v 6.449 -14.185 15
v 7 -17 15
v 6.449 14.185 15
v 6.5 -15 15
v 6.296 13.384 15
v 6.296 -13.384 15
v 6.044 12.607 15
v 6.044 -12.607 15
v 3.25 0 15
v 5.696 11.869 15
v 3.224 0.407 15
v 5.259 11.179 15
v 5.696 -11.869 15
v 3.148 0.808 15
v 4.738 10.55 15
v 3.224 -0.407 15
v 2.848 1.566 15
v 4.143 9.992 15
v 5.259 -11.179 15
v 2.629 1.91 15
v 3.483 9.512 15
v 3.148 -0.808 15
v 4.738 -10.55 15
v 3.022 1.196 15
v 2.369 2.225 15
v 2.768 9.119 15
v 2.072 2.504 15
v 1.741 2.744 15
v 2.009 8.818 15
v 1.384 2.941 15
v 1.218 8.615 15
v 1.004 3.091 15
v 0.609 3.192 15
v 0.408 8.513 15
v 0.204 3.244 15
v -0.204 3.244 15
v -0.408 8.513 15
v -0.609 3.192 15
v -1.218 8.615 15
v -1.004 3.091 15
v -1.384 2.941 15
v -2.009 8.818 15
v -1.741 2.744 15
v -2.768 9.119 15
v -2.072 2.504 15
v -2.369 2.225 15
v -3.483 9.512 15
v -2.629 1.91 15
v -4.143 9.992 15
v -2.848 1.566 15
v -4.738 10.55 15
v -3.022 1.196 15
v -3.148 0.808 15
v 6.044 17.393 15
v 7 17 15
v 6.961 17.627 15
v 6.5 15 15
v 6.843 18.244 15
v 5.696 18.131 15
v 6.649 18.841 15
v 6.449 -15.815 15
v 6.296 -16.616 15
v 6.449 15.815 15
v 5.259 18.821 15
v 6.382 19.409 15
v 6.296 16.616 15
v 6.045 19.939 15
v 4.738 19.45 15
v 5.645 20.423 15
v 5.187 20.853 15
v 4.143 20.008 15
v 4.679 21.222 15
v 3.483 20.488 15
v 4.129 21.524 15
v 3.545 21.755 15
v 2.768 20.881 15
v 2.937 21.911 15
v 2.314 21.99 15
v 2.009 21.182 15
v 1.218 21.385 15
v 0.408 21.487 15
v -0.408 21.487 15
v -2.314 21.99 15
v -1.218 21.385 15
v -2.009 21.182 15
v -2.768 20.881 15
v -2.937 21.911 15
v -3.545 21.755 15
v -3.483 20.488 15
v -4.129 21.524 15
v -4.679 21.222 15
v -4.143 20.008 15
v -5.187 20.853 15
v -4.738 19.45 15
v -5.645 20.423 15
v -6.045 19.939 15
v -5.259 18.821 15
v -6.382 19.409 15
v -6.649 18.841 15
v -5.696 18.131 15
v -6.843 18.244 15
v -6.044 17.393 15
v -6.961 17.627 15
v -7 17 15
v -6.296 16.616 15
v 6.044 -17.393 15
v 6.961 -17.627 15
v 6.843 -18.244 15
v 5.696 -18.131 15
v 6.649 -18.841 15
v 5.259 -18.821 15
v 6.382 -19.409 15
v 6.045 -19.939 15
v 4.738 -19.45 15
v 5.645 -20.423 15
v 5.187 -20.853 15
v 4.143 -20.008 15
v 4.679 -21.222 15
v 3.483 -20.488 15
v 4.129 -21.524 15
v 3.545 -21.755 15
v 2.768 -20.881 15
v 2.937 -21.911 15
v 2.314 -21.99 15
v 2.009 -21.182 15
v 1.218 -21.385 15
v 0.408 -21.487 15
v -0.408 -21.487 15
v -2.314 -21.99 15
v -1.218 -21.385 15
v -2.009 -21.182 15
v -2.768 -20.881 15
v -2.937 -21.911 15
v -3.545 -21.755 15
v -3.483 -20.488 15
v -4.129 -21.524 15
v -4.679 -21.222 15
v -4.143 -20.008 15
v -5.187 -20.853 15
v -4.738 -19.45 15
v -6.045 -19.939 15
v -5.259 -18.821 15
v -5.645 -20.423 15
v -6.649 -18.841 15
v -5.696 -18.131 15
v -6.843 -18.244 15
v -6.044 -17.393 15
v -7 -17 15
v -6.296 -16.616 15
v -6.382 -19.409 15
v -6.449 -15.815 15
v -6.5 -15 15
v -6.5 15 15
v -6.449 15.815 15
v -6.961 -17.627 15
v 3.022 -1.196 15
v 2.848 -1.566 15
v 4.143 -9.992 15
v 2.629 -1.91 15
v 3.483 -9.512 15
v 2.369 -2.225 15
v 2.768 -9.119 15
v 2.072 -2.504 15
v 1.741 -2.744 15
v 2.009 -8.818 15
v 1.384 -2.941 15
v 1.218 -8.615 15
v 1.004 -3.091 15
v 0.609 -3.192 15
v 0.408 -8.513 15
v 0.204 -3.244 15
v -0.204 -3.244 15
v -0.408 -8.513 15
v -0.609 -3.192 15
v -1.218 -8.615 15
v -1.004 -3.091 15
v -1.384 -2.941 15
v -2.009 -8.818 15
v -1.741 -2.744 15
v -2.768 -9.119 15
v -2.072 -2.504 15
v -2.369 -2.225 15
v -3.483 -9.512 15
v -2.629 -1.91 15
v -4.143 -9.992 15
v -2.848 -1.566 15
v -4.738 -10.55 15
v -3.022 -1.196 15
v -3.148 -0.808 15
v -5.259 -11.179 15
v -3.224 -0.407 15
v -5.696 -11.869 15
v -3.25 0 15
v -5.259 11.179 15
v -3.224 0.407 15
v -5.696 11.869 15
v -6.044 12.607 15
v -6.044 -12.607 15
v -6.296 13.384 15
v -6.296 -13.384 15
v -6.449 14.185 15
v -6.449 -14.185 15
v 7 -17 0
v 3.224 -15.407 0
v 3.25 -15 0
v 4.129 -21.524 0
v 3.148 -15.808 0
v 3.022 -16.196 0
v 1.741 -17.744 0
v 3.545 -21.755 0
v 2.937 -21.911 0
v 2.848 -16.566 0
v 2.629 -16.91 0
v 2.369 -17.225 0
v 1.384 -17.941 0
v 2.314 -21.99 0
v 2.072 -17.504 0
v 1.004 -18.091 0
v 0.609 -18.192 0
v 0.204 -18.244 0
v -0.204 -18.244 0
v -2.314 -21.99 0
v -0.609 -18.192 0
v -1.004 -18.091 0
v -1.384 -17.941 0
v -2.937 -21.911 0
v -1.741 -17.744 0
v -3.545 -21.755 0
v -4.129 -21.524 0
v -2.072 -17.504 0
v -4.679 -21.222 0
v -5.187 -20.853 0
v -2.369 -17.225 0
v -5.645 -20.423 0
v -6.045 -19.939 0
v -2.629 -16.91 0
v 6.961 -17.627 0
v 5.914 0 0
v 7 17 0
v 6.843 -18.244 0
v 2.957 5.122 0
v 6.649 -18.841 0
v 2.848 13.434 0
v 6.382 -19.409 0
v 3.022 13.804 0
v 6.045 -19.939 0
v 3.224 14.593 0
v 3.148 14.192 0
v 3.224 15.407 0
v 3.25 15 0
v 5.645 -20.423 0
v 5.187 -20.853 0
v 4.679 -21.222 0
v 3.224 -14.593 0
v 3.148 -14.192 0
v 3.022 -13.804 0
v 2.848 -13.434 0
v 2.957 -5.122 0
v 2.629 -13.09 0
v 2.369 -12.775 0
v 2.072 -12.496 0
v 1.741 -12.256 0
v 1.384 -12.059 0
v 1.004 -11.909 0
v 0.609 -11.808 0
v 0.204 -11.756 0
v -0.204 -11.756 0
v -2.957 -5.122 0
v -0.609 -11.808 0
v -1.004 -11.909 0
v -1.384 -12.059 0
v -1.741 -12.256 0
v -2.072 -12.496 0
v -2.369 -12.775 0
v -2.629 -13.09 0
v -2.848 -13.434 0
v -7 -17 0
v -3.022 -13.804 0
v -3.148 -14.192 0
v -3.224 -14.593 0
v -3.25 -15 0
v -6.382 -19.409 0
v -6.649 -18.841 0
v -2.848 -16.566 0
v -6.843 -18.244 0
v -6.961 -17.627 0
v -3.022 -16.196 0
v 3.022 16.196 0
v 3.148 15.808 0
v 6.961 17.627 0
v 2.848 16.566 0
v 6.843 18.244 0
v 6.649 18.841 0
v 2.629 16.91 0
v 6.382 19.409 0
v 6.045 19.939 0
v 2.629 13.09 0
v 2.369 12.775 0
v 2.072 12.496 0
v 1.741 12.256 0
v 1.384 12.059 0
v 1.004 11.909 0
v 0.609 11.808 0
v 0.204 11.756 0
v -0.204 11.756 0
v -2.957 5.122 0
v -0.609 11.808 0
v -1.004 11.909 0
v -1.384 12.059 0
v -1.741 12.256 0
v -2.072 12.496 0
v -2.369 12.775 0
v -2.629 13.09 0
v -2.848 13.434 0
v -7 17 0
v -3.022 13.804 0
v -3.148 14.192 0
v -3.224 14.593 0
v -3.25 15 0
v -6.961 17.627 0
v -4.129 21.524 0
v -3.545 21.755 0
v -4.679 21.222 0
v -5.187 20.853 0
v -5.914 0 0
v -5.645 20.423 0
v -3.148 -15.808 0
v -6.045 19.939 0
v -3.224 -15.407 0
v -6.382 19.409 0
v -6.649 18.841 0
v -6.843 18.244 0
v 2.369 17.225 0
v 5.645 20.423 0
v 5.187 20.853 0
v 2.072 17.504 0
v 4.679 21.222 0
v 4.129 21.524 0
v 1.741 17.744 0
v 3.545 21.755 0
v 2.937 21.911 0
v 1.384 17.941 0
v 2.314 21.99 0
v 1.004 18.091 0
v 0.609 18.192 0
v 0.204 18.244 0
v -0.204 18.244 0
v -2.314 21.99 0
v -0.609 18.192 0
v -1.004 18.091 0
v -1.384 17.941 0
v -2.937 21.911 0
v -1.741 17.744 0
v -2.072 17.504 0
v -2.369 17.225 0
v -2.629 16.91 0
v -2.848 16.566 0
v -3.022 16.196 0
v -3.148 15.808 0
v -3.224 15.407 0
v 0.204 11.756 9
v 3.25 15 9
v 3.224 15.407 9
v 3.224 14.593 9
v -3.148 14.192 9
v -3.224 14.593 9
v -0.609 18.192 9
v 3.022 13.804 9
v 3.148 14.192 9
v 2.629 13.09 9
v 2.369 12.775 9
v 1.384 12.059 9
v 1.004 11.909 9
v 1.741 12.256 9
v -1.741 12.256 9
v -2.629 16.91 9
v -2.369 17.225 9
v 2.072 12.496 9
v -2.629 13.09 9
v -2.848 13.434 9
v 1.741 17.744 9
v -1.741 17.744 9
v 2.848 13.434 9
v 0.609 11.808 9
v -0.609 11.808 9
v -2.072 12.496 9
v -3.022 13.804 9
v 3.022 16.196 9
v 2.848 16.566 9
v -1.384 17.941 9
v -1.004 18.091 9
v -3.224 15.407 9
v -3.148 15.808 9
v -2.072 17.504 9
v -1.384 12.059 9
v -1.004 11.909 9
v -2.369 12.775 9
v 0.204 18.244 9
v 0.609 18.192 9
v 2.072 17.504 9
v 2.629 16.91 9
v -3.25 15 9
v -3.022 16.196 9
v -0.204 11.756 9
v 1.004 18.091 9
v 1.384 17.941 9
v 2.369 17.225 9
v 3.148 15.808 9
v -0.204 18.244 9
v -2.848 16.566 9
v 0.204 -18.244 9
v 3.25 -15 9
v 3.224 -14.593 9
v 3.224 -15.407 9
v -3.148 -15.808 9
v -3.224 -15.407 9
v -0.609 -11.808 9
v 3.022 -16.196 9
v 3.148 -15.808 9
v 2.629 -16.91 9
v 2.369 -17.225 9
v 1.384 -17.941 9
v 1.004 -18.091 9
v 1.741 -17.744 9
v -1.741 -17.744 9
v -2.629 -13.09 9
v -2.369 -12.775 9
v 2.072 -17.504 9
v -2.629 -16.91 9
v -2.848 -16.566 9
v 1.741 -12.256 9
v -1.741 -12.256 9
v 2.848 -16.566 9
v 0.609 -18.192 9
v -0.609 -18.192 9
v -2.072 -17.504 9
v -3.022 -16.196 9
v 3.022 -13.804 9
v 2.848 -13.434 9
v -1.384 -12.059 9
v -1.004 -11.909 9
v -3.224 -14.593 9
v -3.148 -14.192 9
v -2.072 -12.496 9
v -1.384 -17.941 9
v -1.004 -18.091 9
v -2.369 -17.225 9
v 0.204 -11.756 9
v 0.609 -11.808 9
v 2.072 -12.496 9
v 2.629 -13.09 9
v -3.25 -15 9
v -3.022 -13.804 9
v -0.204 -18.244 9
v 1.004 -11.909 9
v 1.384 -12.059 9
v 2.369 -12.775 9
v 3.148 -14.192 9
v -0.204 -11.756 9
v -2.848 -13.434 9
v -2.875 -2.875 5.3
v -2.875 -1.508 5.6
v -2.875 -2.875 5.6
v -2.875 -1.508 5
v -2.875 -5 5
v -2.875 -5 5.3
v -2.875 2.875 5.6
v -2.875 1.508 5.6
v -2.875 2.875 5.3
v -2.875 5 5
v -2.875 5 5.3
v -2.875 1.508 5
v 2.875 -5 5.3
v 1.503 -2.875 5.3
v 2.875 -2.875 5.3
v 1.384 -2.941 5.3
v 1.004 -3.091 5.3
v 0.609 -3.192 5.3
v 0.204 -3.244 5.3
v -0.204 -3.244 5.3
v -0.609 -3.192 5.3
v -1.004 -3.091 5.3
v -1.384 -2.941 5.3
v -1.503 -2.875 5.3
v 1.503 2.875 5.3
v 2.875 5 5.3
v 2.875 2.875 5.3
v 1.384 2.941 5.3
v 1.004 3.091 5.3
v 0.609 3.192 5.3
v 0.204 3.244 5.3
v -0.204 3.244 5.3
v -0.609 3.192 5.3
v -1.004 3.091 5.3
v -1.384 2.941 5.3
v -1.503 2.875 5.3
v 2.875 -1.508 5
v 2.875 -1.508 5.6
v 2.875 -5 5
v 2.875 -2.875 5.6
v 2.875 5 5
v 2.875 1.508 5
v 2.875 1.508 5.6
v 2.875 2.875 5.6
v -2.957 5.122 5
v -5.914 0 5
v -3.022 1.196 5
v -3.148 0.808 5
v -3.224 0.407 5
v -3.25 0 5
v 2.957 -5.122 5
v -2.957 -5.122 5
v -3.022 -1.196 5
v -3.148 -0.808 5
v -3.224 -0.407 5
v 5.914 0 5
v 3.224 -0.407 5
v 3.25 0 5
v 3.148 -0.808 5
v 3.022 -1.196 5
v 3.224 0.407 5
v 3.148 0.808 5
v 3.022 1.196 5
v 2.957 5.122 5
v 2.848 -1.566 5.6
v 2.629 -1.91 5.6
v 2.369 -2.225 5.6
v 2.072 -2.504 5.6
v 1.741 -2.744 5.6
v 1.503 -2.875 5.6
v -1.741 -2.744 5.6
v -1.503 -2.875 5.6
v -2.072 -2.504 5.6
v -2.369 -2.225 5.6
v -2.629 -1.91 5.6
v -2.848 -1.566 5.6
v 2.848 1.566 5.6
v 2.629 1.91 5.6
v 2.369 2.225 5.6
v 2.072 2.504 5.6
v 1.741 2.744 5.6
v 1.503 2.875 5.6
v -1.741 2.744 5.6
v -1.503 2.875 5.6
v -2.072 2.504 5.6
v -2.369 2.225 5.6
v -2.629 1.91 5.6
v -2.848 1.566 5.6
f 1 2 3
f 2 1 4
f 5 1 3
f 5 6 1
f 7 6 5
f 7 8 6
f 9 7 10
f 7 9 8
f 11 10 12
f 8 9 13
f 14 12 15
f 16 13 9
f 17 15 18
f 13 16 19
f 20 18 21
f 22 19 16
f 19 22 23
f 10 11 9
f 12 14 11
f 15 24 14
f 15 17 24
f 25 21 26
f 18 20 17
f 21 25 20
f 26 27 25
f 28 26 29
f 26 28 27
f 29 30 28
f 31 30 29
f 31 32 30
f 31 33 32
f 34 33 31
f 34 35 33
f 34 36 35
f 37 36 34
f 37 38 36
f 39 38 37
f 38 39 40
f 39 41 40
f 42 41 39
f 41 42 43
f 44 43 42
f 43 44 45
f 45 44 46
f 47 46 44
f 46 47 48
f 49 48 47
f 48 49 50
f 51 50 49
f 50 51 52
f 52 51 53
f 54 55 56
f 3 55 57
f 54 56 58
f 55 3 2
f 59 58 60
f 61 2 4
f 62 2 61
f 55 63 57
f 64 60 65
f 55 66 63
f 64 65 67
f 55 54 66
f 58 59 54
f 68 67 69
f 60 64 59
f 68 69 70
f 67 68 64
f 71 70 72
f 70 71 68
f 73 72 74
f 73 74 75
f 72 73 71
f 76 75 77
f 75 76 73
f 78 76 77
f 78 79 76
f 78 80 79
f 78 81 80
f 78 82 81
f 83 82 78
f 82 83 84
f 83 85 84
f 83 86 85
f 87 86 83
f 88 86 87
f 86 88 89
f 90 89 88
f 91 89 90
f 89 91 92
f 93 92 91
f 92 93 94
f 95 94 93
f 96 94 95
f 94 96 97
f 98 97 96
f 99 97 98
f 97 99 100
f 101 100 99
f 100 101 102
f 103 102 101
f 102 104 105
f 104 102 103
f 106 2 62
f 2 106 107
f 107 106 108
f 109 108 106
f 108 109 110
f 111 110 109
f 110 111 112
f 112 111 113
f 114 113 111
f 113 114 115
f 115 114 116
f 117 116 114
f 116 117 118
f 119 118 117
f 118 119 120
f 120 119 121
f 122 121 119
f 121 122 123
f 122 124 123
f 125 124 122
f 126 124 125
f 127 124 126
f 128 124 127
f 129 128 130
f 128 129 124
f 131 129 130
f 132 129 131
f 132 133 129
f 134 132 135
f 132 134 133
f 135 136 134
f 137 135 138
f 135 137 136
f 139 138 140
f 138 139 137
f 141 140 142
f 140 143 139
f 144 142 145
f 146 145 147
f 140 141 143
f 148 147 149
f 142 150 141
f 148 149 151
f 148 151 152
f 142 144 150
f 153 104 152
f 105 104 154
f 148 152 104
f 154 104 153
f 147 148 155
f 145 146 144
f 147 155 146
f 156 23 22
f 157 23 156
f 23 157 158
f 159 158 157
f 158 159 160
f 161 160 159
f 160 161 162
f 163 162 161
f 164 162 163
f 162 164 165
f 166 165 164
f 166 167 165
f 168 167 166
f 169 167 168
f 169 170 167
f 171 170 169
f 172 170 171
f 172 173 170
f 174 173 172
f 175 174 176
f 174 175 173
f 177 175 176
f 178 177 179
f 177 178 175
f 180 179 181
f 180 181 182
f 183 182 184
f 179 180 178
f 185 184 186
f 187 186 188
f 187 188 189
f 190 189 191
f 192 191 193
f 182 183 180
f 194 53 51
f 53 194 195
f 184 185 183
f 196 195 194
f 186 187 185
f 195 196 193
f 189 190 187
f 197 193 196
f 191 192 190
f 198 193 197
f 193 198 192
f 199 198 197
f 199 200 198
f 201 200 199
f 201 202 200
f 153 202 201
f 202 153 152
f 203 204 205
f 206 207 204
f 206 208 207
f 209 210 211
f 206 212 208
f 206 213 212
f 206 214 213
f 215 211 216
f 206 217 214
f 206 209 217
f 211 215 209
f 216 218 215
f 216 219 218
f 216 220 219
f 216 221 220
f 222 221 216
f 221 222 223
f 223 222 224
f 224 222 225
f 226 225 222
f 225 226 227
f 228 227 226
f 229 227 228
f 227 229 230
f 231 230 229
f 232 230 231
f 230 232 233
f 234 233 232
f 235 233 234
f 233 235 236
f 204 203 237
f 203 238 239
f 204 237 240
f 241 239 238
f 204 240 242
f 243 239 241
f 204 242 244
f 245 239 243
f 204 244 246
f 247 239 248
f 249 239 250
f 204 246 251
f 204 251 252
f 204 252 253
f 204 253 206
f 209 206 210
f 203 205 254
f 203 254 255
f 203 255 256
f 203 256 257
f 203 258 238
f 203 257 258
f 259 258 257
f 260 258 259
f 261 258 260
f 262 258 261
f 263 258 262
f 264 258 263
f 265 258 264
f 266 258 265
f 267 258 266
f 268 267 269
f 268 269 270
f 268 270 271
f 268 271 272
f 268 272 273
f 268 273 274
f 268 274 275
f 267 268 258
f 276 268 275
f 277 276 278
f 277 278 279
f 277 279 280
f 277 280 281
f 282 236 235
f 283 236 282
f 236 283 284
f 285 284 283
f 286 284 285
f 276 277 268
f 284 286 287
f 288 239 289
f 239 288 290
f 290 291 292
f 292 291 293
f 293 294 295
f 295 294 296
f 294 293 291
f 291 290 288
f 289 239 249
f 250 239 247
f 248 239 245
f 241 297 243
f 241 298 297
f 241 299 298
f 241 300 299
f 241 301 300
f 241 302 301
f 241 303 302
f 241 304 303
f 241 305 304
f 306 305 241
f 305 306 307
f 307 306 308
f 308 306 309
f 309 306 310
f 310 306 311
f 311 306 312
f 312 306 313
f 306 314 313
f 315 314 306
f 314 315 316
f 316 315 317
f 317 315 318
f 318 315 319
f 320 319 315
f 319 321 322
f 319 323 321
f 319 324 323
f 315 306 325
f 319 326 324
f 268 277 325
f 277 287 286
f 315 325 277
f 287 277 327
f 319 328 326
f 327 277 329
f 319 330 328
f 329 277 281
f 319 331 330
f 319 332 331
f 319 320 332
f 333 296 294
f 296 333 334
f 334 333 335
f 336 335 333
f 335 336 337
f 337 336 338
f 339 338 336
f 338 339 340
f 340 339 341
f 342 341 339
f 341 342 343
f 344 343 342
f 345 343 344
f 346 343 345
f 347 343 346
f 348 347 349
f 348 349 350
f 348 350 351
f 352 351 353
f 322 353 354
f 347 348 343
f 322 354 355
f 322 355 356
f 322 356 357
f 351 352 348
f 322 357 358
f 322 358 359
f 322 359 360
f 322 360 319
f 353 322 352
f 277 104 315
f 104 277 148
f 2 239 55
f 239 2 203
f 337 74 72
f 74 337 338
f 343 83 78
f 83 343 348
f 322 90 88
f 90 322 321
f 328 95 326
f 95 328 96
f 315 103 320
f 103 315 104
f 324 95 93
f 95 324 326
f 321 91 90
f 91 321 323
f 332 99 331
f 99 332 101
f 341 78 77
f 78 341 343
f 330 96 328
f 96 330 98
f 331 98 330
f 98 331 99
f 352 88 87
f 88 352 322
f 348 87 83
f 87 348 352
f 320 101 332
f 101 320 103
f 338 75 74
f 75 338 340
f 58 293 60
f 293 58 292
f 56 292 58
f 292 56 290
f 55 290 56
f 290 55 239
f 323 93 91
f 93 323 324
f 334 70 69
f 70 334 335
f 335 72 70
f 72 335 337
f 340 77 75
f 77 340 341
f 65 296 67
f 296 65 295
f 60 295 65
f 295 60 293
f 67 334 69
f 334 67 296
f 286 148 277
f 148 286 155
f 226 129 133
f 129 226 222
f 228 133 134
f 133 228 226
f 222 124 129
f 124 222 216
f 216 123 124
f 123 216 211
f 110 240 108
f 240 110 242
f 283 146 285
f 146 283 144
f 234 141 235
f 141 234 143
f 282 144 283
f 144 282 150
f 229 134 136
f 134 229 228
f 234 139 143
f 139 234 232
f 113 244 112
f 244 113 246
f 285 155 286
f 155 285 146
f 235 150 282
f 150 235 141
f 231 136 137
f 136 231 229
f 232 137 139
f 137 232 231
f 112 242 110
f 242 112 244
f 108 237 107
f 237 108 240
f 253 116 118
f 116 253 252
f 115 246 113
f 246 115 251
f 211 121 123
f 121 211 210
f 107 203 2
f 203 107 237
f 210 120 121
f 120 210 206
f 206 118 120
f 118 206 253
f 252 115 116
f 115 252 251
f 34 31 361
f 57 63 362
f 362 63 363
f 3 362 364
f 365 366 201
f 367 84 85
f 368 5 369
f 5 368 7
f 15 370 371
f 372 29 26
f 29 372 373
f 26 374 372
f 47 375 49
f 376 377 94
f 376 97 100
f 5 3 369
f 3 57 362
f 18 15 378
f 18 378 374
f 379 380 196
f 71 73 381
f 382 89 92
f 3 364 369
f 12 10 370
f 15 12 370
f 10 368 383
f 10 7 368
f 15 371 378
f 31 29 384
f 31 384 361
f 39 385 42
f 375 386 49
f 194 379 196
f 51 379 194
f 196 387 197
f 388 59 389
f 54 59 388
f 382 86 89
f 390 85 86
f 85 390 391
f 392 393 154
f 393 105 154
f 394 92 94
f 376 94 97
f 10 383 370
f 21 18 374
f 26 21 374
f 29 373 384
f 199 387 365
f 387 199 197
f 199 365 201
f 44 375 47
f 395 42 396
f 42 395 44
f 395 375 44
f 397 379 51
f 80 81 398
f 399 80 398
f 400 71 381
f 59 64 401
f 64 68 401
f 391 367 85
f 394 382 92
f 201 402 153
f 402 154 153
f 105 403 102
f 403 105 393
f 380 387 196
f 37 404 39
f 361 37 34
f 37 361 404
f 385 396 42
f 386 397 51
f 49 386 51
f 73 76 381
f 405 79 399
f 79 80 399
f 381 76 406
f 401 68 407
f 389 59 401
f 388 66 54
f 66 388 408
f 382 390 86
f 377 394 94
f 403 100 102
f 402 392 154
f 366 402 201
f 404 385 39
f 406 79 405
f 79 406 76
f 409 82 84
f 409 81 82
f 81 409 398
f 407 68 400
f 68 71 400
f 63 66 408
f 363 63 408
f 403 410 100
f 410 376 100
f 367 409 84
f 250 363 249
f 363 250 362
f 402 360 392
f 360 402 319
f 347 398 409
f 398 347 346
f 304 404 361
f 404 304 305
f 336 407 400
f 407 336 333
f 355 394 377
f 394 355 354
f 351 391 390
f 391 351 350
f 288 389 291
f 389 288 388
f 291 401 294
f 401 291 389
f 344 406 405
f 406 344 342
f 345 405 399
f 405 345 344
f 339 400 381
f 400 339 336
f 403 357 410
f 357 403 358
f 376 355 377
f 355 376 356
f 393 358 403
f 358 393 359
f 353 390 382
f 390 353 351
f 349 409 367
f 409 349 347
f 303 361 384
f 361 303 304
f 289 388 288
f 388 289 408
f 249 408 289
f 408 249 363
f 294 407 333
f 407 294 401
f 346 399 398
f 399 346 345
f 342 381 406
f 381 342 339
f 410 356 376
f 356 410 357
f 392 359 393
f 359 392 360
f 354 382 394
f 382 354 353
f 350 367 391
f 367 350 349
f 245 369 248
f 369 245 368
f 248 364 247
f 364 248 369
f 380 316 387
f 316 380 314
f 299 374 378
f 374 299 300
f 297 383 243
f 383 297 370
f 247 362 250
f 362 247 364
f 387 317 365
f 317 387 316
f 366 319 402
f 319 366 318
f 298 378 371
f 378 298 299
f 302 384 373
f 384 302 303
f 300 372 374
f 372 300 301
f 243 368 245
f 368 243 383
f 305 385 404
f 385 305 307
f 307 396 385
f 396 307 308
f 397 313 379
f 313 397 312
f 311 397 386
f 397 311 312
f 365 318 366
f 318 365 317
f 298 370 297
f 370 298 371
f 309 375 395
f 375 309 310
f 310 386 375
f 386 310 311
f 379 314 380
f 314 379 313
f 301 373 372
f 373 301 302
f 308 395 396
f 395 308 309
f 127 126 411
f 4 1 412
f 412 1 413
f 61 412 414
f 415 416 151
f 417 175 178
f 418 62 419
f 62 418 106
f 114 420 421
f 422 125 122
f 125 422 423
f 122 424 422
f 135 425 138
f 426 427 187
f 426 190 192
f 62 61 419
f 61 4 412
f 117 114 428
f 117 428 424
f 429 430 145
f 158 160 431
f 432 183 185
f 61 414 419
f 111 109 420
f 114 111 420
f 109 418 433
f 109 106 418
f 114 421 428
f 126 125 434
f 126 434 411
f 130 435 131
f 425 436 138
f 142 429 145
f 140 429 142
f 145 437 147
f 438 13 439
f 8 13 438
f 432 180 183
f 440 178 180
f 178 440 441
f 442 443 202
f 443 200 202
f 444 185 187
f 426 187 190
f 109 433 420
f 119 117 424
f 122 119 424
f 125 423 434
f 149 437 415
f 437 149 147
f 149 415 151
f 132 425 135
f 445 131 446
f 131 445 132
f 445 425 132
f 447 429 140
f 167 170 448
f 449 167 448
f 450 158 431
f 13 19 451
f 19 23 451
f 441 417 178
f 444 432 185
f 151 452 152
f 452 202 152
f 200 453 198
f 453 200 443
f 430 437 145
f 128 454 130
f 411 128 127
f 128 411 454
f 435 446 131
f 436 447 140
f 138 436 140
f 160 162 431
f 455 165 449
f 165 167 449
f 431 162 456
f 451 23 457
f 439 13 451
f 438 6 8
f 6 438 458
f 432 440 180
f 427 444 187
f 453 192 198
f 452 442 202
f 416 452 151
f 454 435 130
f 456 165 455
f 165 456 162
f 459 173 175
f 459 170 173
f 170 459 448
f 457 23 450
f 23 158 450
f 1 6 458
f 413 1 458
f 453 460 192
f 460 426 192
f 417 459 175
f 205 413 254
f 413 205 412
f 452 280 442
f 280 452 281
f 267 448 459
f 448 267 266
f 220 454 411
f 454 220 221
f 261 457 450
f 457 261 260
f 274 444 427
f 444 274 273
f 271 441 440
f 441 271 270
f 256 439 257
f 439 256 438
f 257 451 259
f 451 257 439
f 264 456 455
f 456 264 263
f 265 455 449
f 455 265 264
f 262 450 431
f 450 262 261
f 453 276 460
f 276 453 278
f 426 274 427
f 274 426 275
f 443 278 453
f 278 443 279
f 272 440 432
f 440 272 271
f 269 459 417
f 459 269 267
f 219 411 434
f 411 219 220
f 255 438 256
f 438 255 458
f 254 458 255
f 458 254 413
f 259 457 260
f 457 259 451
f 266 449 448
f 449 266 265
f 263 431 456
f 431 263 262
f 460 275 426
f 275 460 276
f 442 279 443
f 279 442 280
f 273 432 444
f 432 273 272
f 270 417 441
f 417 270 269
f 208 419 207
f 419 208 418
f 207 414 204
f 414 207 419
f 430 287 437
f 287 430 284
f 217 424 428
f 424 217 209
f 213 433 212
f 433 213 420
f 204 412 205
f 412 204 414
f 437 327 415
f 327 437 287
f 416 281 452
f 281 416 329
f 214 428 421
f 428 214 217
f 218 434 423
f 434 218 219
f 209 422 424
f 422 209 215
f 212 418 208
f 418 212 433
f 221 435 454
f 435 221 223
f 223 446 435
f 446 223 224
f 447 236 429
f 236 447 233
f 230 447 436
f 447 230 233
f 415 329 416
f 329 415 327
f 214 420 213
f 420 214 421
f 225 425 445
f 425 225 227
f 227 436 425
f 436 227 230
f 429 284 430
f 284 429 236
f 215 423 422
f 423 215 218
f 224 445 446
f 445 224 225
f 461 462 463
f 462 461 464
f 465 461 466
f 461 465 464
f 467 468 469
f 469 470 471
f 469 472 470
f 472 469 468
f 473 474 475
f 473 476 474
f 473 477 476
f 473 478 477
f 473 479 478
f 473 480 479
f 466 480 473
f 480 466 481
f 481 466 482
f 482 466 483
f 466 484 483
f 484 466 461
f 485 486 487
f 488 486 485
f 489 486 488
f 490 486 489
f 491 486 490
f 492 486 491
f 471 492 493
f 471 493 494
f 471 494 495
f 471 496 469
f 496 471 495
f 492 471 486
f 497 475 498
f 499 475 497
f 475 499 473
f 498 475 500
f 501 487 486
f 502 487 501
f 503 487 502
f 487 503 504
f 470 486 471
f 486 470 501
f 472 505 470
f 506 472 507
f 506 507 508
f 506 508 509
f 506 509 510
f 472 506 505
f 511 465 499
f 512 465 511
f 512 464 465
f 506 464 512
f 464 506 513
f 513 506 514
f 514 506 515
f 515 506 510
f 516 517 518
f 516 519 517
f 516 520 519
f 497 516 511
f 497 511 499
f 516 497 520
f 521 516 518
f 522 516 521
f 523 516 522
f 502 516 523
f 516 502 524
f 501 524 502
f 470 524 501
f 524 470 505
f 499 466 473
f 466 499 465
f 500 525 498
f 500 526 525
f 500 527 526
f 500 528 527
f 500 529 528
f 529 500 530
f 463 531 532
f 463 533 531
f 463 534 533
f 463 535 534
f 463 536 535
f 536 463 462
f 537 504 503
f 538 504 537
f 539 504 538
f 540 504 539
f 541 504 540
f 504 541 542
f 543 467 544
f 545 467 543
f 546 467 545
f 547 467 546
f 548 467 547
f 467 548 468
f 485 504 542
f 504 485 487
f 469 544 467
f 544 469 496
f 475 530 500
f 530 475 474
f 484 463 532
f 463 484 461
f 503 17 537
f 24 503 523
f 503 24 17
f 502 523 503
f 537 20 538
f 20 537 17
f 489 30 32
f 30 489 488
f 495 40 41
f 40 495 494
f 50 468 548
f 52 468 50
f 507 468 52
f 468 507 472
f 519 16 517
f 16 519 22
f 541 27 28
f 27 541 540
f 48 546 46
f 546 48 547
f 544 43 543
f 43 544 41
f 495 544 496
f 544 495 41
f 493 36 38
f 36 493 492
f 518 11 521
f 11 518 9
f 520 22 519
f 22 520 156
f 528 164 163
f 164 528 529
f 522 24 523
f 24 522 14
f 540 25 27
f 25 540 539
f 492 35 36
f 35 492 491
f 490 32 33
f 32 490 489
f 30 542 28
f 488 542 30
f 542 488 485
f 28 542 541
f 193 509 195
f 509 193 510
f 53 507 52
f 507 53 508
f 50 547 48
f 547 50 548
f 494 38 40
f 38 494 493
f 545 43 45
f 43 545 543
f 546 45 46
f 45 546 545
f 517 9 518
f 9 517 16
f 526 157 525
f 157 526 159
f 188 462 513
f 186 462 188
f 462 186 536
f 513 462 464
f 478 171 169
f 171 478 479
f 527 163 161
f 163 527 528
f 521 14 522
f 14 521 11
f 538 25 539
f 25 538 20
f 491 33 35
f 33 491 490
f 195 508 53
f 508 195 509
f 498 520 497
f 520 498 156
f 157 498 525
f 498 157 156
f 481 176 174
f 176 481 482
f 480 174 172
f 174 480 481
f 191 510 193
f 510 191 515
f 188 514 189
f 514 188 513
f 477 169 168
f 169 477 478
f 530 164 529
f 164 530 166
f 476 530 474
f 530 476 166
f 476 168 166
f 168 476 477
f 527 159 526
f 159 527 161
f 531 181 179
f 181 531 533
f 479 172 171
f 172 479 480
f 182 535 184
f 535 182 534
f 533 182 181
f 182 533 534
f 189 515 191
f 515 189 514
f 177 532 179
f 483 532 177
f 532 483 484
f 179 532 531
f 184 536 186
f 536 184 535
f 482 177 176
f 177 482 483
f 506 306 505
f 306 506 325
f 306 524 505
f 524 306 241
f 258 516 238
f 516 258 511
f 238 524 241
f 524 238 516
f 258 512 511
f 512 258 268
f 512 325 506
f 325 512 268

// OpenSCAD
$fn = 50;


difference() {
	union() {
		cylinder(h = 15, r = 7.0000000000);
		translate(v = [0.0000000000, 7.5000000000, 0]) {
			hull() {
				translate(v = [-2.0000000000, 9.5000000000, 0]) {
					cylinder(h = 15, r = 5);
				}
				translate(v = [2.0000000000, 9.5000000000, 0]) {
					cylinder(h = 15, r = 5);
				}
				translate(v = [-2.0000000000, -9.5000000000, 0]) {
					cylinder(h = 15, r = 5);
				}
				translate(v = [2.0000000000, -9.5000000000, 0]) {
					cylinder(h = 15, r = 5);
				}
			}
		}
		translate(v = [0.0000000000, 7.5000000000, 0]) {
			hull() {
				translate(v = [-2.0000000000, 9.5000000000, 0]) {
					cylinder(h = 15, r = 5);
				}
				translate(v = [2.0000000000, 9.5000000000, 0]) {
					cylinder(h = 15, r = 5);
				}
				translate(v = [-2.0000000000, -9.5000000000, 0]) {
					cylinder(h = 15, r = 5);
				}
				translate(v = [2.0000000000, -9.5000000000, 0]) {
					cylinder(h = 15, r = 5);
				}
			}
		}
		translate(v = [0.0000000000, -7.5000000000, 0]) {
			hull() {
				translate(v = [-2.0000000000, 9.5000000000, 0]) {
					cylinder(h = 15, r = 5);
				}
				translate(v = [2.0000000000, 9.5000000000, 0]) {
					cylinder(h = 15, r = 5);
				}
				translate(v = [-2.0000000000, -9.5000000000, 0]) {
					cylinder(h = 15, r = 5);
				}
				translate(v = [2.0000000000, -9.5000000000, 0]) {
					cylinder(h = 15, r = 5);
				}
			}
		}
		translate(v = [0.0000000000, -7.5000000000, 0]) {
			hull() {
				translate(v = [-2.0000000000, 9.5000000000, 0]) {
					cylinder(h = 15, r = 5);
				}
				translate(v = [2.0000000000, 9.5000000000, 0]) {
					cylinder(h = 15, r = 5);
				}
				translate(v = [-2.0000000000, -9.5000000000, 0]) {
					cylinder(h = 15, r = 5);
				}
				translate(v = [2.0000000000, -9.5000000000, 0]) {
					cylinder(h = 15, r = 5);
				}
			}
		}
	}
	union() {
		translate(v = [0.0000000000, 15.0000000000, 15]) {
			rotate(a = [0, 0, 0]) {
				difference() {
					union() {
						#translate(v = [0, 0, -15.0000000000]) {
							cylinder(h = 15, r = 2.2500000000);
						}
						#translate(v = [0, 0, -6]) {
							cylinder(h = 6, r1 = 3.2500000000, r2 = 6.5000000000);
						}
						#translate(v = [0, 0, -15.0000000000]) {
							cylinder(h = 15, r = 3.2500000000);
						}
						#translate(v = [0, 0, -15.0000000000]) {
							cylinder(h = 15, r = 2.2500000000);
						}
					}
					union();
				}
			}
		}
		translate(v = [0.0000000000, 15.0000000000, 15]) {
			rotate(a = [0, 0, 0]) {
				difference() {
					union() {
						#translate(v = [0, 0, -15.0000000000]) {
							cylinder(h = 15, r = 2.2500000000);
						}
						#translate(v = [0, 0, -6]) {
							cylinder(h = 6, r1 = 3.2500000000, r2 = 6.5000000000);
						}
						#translate(v = [0, 0, -15.0000000000]) {
							cylinder(h = 15, r = 3.2500000000);
						}
						#translate(v = [0, 0, -15.0000000000]) {
							cylinder(h = 15, r = 2.2500000000);
						}
					}
					union();
				}
			}
		}
		translate(v = [0.0000000000, -15.0000000000, 15]) {
			rotate(a = [0, 0, 0]) {
				difference() {
					union() {
						#translate(v = [0, 0, -15.0000000000]) {
							cylinder(h = 15, r = 2.2500000000);
						}
						#translate(v = [0, 0, -6]) {
							cylinder(h = 6, r1 = 3.2500000000, r2 = 6.5000000000);
						}
						#translate(v = [0, 0, -15.0000000000]) {
							cylinder(h = 15, r = 3.2500000000);
						}
						#translate(v = [0, 0, -15.0000000000]) {
							cylinder(h = 15, r = 2.2500000000);
						}
					}
					union();
				}
			}
		}
		translate(v = [0.0000000000, -15.0000000000, 15]) {
			rotate(a = [0, 0, 0]) {
				difference() {
					union() {
						#translate(v = [0, 0, -15.0000000000]) {
							cylinder(h = 15, r = 2.2500000000);
						}
						#translate(v = [0, 0, -6]) {
							cylinder(h = 6, r1 = 3.2500000000, r2 = 6.5000000000);
						}
						#translate(v = [0, 0, -15.0000000000]) {
							cylinder(h = 15, r = 3.2500000000);
						}
						#translate(v = [0, 0, -15.0000000000]) {
							cylinder(h = 15, r = 2.2500000000);
						}
					}
					union();
				}
			}
		}
		translate(v = [0.0000000000, 0.0000000000, 0]) {
			rotate(a = [0, 0, 0]) {
				difference() {
					union() {
						#translate(v = [-2.8750000000, -5.0000000000, -0.3000000000]) {
							cube(size = [5.7500000000, 10, 0.3000000000]);
						}
						#translate(v = [-2.8750000000, -2.8750000000, -0.6000000000]) {
							cube(size = [5.7500000000, 5.7500000000, 0.3000000000]);
						}
						#translate(v = [-2.8750000000, -5.0000000000, 5]) {
							cube(size = [5.7500000000, 10, 0.3000000000]);
						}
						#translate(v = [-2.8750000000, -2.8750000000, 5.3000000000]) {
							cube(size = [5.7500000000, 5.7500000000, 0.3000000000]);
						}
						#translate(v = [0, 0, -100.0000000000]) {
							cylinder(h = 200, r = 3.2500000000);
						}
						#linear_extrude(height = 5) {
							polygon(points = [[5.9142500000, 0.0000000000], [2.9571250000, 5.1218907443], [-2.9571250000, 5.1218907443], [-5.9142500000, 0.0000000000], [-2.9571250000, -5.1218907443], [2.9571250000, -5.1218907443]]);
						}
						#translate(v = [-2.8750000000, -5.0000000000, -0.3000000000]) {
							cube(size = [5.7500000000, 10, 0.3000000000]);
						}
						#translate(v = [-2.8750000000, -2.8750000000, -0.6000000000]) {
							cube(size = [5.7500000000, 5.7500000000, 0.3000000000]);
						}
						#translate(v = [-2.8750000000, -5.0000000000, 5]) {
							cube(size = [5.7500000000, 10, 0.3000000000]);
						}
						#translate(v = [-2.8750000000, -2.8750000000, 5.3000000000]) {
							cube(size = [5.7500000000, 5.7500000000, 0.3000000000]);
						}
						#translate(v = [0, 0, -100.0000000000]) {
							cylinder(h = 200, r = 3.2500000000);
						}
						#translate(v = [-2.8750000000, -5.0000000000, -0.3000000000]) {
							cube(size = [5.7500000000, 10, 0.3000000000]);
						}
						#translate(v = [-2.8750000000, -2.8750000000, -0.6000000000]) {
							cube(size = [5.7500000000, 5.7500000000, 0.3000000000]);
						}
						#translate(v = [-2.8750000000, -5.0000000000, 5]) {
							cube(size = [5.7500000000, 10, 0.3000000000]);
						}
						#translate(v = [-2.8750000000, -2.8750000000, 5.3000000000]) {
							cube(size = [5.7500000000, 5.7500000000, 0.3000000000]);
						}
						#translate(v = [0, 0, -100.0000000000]) {
							cylinder(h = 200, r = 3.2500000000);
						}
					}
					union();
				}
			}
		}
		translate(v = [0, 0, -100]) {
			cylinder(h = 200, r = 3.2500000000);
		}
		translate(v = [0, 0, -100]) {
			cylinder(h = 200, r = 1.8000000000);
		}
	}
}
